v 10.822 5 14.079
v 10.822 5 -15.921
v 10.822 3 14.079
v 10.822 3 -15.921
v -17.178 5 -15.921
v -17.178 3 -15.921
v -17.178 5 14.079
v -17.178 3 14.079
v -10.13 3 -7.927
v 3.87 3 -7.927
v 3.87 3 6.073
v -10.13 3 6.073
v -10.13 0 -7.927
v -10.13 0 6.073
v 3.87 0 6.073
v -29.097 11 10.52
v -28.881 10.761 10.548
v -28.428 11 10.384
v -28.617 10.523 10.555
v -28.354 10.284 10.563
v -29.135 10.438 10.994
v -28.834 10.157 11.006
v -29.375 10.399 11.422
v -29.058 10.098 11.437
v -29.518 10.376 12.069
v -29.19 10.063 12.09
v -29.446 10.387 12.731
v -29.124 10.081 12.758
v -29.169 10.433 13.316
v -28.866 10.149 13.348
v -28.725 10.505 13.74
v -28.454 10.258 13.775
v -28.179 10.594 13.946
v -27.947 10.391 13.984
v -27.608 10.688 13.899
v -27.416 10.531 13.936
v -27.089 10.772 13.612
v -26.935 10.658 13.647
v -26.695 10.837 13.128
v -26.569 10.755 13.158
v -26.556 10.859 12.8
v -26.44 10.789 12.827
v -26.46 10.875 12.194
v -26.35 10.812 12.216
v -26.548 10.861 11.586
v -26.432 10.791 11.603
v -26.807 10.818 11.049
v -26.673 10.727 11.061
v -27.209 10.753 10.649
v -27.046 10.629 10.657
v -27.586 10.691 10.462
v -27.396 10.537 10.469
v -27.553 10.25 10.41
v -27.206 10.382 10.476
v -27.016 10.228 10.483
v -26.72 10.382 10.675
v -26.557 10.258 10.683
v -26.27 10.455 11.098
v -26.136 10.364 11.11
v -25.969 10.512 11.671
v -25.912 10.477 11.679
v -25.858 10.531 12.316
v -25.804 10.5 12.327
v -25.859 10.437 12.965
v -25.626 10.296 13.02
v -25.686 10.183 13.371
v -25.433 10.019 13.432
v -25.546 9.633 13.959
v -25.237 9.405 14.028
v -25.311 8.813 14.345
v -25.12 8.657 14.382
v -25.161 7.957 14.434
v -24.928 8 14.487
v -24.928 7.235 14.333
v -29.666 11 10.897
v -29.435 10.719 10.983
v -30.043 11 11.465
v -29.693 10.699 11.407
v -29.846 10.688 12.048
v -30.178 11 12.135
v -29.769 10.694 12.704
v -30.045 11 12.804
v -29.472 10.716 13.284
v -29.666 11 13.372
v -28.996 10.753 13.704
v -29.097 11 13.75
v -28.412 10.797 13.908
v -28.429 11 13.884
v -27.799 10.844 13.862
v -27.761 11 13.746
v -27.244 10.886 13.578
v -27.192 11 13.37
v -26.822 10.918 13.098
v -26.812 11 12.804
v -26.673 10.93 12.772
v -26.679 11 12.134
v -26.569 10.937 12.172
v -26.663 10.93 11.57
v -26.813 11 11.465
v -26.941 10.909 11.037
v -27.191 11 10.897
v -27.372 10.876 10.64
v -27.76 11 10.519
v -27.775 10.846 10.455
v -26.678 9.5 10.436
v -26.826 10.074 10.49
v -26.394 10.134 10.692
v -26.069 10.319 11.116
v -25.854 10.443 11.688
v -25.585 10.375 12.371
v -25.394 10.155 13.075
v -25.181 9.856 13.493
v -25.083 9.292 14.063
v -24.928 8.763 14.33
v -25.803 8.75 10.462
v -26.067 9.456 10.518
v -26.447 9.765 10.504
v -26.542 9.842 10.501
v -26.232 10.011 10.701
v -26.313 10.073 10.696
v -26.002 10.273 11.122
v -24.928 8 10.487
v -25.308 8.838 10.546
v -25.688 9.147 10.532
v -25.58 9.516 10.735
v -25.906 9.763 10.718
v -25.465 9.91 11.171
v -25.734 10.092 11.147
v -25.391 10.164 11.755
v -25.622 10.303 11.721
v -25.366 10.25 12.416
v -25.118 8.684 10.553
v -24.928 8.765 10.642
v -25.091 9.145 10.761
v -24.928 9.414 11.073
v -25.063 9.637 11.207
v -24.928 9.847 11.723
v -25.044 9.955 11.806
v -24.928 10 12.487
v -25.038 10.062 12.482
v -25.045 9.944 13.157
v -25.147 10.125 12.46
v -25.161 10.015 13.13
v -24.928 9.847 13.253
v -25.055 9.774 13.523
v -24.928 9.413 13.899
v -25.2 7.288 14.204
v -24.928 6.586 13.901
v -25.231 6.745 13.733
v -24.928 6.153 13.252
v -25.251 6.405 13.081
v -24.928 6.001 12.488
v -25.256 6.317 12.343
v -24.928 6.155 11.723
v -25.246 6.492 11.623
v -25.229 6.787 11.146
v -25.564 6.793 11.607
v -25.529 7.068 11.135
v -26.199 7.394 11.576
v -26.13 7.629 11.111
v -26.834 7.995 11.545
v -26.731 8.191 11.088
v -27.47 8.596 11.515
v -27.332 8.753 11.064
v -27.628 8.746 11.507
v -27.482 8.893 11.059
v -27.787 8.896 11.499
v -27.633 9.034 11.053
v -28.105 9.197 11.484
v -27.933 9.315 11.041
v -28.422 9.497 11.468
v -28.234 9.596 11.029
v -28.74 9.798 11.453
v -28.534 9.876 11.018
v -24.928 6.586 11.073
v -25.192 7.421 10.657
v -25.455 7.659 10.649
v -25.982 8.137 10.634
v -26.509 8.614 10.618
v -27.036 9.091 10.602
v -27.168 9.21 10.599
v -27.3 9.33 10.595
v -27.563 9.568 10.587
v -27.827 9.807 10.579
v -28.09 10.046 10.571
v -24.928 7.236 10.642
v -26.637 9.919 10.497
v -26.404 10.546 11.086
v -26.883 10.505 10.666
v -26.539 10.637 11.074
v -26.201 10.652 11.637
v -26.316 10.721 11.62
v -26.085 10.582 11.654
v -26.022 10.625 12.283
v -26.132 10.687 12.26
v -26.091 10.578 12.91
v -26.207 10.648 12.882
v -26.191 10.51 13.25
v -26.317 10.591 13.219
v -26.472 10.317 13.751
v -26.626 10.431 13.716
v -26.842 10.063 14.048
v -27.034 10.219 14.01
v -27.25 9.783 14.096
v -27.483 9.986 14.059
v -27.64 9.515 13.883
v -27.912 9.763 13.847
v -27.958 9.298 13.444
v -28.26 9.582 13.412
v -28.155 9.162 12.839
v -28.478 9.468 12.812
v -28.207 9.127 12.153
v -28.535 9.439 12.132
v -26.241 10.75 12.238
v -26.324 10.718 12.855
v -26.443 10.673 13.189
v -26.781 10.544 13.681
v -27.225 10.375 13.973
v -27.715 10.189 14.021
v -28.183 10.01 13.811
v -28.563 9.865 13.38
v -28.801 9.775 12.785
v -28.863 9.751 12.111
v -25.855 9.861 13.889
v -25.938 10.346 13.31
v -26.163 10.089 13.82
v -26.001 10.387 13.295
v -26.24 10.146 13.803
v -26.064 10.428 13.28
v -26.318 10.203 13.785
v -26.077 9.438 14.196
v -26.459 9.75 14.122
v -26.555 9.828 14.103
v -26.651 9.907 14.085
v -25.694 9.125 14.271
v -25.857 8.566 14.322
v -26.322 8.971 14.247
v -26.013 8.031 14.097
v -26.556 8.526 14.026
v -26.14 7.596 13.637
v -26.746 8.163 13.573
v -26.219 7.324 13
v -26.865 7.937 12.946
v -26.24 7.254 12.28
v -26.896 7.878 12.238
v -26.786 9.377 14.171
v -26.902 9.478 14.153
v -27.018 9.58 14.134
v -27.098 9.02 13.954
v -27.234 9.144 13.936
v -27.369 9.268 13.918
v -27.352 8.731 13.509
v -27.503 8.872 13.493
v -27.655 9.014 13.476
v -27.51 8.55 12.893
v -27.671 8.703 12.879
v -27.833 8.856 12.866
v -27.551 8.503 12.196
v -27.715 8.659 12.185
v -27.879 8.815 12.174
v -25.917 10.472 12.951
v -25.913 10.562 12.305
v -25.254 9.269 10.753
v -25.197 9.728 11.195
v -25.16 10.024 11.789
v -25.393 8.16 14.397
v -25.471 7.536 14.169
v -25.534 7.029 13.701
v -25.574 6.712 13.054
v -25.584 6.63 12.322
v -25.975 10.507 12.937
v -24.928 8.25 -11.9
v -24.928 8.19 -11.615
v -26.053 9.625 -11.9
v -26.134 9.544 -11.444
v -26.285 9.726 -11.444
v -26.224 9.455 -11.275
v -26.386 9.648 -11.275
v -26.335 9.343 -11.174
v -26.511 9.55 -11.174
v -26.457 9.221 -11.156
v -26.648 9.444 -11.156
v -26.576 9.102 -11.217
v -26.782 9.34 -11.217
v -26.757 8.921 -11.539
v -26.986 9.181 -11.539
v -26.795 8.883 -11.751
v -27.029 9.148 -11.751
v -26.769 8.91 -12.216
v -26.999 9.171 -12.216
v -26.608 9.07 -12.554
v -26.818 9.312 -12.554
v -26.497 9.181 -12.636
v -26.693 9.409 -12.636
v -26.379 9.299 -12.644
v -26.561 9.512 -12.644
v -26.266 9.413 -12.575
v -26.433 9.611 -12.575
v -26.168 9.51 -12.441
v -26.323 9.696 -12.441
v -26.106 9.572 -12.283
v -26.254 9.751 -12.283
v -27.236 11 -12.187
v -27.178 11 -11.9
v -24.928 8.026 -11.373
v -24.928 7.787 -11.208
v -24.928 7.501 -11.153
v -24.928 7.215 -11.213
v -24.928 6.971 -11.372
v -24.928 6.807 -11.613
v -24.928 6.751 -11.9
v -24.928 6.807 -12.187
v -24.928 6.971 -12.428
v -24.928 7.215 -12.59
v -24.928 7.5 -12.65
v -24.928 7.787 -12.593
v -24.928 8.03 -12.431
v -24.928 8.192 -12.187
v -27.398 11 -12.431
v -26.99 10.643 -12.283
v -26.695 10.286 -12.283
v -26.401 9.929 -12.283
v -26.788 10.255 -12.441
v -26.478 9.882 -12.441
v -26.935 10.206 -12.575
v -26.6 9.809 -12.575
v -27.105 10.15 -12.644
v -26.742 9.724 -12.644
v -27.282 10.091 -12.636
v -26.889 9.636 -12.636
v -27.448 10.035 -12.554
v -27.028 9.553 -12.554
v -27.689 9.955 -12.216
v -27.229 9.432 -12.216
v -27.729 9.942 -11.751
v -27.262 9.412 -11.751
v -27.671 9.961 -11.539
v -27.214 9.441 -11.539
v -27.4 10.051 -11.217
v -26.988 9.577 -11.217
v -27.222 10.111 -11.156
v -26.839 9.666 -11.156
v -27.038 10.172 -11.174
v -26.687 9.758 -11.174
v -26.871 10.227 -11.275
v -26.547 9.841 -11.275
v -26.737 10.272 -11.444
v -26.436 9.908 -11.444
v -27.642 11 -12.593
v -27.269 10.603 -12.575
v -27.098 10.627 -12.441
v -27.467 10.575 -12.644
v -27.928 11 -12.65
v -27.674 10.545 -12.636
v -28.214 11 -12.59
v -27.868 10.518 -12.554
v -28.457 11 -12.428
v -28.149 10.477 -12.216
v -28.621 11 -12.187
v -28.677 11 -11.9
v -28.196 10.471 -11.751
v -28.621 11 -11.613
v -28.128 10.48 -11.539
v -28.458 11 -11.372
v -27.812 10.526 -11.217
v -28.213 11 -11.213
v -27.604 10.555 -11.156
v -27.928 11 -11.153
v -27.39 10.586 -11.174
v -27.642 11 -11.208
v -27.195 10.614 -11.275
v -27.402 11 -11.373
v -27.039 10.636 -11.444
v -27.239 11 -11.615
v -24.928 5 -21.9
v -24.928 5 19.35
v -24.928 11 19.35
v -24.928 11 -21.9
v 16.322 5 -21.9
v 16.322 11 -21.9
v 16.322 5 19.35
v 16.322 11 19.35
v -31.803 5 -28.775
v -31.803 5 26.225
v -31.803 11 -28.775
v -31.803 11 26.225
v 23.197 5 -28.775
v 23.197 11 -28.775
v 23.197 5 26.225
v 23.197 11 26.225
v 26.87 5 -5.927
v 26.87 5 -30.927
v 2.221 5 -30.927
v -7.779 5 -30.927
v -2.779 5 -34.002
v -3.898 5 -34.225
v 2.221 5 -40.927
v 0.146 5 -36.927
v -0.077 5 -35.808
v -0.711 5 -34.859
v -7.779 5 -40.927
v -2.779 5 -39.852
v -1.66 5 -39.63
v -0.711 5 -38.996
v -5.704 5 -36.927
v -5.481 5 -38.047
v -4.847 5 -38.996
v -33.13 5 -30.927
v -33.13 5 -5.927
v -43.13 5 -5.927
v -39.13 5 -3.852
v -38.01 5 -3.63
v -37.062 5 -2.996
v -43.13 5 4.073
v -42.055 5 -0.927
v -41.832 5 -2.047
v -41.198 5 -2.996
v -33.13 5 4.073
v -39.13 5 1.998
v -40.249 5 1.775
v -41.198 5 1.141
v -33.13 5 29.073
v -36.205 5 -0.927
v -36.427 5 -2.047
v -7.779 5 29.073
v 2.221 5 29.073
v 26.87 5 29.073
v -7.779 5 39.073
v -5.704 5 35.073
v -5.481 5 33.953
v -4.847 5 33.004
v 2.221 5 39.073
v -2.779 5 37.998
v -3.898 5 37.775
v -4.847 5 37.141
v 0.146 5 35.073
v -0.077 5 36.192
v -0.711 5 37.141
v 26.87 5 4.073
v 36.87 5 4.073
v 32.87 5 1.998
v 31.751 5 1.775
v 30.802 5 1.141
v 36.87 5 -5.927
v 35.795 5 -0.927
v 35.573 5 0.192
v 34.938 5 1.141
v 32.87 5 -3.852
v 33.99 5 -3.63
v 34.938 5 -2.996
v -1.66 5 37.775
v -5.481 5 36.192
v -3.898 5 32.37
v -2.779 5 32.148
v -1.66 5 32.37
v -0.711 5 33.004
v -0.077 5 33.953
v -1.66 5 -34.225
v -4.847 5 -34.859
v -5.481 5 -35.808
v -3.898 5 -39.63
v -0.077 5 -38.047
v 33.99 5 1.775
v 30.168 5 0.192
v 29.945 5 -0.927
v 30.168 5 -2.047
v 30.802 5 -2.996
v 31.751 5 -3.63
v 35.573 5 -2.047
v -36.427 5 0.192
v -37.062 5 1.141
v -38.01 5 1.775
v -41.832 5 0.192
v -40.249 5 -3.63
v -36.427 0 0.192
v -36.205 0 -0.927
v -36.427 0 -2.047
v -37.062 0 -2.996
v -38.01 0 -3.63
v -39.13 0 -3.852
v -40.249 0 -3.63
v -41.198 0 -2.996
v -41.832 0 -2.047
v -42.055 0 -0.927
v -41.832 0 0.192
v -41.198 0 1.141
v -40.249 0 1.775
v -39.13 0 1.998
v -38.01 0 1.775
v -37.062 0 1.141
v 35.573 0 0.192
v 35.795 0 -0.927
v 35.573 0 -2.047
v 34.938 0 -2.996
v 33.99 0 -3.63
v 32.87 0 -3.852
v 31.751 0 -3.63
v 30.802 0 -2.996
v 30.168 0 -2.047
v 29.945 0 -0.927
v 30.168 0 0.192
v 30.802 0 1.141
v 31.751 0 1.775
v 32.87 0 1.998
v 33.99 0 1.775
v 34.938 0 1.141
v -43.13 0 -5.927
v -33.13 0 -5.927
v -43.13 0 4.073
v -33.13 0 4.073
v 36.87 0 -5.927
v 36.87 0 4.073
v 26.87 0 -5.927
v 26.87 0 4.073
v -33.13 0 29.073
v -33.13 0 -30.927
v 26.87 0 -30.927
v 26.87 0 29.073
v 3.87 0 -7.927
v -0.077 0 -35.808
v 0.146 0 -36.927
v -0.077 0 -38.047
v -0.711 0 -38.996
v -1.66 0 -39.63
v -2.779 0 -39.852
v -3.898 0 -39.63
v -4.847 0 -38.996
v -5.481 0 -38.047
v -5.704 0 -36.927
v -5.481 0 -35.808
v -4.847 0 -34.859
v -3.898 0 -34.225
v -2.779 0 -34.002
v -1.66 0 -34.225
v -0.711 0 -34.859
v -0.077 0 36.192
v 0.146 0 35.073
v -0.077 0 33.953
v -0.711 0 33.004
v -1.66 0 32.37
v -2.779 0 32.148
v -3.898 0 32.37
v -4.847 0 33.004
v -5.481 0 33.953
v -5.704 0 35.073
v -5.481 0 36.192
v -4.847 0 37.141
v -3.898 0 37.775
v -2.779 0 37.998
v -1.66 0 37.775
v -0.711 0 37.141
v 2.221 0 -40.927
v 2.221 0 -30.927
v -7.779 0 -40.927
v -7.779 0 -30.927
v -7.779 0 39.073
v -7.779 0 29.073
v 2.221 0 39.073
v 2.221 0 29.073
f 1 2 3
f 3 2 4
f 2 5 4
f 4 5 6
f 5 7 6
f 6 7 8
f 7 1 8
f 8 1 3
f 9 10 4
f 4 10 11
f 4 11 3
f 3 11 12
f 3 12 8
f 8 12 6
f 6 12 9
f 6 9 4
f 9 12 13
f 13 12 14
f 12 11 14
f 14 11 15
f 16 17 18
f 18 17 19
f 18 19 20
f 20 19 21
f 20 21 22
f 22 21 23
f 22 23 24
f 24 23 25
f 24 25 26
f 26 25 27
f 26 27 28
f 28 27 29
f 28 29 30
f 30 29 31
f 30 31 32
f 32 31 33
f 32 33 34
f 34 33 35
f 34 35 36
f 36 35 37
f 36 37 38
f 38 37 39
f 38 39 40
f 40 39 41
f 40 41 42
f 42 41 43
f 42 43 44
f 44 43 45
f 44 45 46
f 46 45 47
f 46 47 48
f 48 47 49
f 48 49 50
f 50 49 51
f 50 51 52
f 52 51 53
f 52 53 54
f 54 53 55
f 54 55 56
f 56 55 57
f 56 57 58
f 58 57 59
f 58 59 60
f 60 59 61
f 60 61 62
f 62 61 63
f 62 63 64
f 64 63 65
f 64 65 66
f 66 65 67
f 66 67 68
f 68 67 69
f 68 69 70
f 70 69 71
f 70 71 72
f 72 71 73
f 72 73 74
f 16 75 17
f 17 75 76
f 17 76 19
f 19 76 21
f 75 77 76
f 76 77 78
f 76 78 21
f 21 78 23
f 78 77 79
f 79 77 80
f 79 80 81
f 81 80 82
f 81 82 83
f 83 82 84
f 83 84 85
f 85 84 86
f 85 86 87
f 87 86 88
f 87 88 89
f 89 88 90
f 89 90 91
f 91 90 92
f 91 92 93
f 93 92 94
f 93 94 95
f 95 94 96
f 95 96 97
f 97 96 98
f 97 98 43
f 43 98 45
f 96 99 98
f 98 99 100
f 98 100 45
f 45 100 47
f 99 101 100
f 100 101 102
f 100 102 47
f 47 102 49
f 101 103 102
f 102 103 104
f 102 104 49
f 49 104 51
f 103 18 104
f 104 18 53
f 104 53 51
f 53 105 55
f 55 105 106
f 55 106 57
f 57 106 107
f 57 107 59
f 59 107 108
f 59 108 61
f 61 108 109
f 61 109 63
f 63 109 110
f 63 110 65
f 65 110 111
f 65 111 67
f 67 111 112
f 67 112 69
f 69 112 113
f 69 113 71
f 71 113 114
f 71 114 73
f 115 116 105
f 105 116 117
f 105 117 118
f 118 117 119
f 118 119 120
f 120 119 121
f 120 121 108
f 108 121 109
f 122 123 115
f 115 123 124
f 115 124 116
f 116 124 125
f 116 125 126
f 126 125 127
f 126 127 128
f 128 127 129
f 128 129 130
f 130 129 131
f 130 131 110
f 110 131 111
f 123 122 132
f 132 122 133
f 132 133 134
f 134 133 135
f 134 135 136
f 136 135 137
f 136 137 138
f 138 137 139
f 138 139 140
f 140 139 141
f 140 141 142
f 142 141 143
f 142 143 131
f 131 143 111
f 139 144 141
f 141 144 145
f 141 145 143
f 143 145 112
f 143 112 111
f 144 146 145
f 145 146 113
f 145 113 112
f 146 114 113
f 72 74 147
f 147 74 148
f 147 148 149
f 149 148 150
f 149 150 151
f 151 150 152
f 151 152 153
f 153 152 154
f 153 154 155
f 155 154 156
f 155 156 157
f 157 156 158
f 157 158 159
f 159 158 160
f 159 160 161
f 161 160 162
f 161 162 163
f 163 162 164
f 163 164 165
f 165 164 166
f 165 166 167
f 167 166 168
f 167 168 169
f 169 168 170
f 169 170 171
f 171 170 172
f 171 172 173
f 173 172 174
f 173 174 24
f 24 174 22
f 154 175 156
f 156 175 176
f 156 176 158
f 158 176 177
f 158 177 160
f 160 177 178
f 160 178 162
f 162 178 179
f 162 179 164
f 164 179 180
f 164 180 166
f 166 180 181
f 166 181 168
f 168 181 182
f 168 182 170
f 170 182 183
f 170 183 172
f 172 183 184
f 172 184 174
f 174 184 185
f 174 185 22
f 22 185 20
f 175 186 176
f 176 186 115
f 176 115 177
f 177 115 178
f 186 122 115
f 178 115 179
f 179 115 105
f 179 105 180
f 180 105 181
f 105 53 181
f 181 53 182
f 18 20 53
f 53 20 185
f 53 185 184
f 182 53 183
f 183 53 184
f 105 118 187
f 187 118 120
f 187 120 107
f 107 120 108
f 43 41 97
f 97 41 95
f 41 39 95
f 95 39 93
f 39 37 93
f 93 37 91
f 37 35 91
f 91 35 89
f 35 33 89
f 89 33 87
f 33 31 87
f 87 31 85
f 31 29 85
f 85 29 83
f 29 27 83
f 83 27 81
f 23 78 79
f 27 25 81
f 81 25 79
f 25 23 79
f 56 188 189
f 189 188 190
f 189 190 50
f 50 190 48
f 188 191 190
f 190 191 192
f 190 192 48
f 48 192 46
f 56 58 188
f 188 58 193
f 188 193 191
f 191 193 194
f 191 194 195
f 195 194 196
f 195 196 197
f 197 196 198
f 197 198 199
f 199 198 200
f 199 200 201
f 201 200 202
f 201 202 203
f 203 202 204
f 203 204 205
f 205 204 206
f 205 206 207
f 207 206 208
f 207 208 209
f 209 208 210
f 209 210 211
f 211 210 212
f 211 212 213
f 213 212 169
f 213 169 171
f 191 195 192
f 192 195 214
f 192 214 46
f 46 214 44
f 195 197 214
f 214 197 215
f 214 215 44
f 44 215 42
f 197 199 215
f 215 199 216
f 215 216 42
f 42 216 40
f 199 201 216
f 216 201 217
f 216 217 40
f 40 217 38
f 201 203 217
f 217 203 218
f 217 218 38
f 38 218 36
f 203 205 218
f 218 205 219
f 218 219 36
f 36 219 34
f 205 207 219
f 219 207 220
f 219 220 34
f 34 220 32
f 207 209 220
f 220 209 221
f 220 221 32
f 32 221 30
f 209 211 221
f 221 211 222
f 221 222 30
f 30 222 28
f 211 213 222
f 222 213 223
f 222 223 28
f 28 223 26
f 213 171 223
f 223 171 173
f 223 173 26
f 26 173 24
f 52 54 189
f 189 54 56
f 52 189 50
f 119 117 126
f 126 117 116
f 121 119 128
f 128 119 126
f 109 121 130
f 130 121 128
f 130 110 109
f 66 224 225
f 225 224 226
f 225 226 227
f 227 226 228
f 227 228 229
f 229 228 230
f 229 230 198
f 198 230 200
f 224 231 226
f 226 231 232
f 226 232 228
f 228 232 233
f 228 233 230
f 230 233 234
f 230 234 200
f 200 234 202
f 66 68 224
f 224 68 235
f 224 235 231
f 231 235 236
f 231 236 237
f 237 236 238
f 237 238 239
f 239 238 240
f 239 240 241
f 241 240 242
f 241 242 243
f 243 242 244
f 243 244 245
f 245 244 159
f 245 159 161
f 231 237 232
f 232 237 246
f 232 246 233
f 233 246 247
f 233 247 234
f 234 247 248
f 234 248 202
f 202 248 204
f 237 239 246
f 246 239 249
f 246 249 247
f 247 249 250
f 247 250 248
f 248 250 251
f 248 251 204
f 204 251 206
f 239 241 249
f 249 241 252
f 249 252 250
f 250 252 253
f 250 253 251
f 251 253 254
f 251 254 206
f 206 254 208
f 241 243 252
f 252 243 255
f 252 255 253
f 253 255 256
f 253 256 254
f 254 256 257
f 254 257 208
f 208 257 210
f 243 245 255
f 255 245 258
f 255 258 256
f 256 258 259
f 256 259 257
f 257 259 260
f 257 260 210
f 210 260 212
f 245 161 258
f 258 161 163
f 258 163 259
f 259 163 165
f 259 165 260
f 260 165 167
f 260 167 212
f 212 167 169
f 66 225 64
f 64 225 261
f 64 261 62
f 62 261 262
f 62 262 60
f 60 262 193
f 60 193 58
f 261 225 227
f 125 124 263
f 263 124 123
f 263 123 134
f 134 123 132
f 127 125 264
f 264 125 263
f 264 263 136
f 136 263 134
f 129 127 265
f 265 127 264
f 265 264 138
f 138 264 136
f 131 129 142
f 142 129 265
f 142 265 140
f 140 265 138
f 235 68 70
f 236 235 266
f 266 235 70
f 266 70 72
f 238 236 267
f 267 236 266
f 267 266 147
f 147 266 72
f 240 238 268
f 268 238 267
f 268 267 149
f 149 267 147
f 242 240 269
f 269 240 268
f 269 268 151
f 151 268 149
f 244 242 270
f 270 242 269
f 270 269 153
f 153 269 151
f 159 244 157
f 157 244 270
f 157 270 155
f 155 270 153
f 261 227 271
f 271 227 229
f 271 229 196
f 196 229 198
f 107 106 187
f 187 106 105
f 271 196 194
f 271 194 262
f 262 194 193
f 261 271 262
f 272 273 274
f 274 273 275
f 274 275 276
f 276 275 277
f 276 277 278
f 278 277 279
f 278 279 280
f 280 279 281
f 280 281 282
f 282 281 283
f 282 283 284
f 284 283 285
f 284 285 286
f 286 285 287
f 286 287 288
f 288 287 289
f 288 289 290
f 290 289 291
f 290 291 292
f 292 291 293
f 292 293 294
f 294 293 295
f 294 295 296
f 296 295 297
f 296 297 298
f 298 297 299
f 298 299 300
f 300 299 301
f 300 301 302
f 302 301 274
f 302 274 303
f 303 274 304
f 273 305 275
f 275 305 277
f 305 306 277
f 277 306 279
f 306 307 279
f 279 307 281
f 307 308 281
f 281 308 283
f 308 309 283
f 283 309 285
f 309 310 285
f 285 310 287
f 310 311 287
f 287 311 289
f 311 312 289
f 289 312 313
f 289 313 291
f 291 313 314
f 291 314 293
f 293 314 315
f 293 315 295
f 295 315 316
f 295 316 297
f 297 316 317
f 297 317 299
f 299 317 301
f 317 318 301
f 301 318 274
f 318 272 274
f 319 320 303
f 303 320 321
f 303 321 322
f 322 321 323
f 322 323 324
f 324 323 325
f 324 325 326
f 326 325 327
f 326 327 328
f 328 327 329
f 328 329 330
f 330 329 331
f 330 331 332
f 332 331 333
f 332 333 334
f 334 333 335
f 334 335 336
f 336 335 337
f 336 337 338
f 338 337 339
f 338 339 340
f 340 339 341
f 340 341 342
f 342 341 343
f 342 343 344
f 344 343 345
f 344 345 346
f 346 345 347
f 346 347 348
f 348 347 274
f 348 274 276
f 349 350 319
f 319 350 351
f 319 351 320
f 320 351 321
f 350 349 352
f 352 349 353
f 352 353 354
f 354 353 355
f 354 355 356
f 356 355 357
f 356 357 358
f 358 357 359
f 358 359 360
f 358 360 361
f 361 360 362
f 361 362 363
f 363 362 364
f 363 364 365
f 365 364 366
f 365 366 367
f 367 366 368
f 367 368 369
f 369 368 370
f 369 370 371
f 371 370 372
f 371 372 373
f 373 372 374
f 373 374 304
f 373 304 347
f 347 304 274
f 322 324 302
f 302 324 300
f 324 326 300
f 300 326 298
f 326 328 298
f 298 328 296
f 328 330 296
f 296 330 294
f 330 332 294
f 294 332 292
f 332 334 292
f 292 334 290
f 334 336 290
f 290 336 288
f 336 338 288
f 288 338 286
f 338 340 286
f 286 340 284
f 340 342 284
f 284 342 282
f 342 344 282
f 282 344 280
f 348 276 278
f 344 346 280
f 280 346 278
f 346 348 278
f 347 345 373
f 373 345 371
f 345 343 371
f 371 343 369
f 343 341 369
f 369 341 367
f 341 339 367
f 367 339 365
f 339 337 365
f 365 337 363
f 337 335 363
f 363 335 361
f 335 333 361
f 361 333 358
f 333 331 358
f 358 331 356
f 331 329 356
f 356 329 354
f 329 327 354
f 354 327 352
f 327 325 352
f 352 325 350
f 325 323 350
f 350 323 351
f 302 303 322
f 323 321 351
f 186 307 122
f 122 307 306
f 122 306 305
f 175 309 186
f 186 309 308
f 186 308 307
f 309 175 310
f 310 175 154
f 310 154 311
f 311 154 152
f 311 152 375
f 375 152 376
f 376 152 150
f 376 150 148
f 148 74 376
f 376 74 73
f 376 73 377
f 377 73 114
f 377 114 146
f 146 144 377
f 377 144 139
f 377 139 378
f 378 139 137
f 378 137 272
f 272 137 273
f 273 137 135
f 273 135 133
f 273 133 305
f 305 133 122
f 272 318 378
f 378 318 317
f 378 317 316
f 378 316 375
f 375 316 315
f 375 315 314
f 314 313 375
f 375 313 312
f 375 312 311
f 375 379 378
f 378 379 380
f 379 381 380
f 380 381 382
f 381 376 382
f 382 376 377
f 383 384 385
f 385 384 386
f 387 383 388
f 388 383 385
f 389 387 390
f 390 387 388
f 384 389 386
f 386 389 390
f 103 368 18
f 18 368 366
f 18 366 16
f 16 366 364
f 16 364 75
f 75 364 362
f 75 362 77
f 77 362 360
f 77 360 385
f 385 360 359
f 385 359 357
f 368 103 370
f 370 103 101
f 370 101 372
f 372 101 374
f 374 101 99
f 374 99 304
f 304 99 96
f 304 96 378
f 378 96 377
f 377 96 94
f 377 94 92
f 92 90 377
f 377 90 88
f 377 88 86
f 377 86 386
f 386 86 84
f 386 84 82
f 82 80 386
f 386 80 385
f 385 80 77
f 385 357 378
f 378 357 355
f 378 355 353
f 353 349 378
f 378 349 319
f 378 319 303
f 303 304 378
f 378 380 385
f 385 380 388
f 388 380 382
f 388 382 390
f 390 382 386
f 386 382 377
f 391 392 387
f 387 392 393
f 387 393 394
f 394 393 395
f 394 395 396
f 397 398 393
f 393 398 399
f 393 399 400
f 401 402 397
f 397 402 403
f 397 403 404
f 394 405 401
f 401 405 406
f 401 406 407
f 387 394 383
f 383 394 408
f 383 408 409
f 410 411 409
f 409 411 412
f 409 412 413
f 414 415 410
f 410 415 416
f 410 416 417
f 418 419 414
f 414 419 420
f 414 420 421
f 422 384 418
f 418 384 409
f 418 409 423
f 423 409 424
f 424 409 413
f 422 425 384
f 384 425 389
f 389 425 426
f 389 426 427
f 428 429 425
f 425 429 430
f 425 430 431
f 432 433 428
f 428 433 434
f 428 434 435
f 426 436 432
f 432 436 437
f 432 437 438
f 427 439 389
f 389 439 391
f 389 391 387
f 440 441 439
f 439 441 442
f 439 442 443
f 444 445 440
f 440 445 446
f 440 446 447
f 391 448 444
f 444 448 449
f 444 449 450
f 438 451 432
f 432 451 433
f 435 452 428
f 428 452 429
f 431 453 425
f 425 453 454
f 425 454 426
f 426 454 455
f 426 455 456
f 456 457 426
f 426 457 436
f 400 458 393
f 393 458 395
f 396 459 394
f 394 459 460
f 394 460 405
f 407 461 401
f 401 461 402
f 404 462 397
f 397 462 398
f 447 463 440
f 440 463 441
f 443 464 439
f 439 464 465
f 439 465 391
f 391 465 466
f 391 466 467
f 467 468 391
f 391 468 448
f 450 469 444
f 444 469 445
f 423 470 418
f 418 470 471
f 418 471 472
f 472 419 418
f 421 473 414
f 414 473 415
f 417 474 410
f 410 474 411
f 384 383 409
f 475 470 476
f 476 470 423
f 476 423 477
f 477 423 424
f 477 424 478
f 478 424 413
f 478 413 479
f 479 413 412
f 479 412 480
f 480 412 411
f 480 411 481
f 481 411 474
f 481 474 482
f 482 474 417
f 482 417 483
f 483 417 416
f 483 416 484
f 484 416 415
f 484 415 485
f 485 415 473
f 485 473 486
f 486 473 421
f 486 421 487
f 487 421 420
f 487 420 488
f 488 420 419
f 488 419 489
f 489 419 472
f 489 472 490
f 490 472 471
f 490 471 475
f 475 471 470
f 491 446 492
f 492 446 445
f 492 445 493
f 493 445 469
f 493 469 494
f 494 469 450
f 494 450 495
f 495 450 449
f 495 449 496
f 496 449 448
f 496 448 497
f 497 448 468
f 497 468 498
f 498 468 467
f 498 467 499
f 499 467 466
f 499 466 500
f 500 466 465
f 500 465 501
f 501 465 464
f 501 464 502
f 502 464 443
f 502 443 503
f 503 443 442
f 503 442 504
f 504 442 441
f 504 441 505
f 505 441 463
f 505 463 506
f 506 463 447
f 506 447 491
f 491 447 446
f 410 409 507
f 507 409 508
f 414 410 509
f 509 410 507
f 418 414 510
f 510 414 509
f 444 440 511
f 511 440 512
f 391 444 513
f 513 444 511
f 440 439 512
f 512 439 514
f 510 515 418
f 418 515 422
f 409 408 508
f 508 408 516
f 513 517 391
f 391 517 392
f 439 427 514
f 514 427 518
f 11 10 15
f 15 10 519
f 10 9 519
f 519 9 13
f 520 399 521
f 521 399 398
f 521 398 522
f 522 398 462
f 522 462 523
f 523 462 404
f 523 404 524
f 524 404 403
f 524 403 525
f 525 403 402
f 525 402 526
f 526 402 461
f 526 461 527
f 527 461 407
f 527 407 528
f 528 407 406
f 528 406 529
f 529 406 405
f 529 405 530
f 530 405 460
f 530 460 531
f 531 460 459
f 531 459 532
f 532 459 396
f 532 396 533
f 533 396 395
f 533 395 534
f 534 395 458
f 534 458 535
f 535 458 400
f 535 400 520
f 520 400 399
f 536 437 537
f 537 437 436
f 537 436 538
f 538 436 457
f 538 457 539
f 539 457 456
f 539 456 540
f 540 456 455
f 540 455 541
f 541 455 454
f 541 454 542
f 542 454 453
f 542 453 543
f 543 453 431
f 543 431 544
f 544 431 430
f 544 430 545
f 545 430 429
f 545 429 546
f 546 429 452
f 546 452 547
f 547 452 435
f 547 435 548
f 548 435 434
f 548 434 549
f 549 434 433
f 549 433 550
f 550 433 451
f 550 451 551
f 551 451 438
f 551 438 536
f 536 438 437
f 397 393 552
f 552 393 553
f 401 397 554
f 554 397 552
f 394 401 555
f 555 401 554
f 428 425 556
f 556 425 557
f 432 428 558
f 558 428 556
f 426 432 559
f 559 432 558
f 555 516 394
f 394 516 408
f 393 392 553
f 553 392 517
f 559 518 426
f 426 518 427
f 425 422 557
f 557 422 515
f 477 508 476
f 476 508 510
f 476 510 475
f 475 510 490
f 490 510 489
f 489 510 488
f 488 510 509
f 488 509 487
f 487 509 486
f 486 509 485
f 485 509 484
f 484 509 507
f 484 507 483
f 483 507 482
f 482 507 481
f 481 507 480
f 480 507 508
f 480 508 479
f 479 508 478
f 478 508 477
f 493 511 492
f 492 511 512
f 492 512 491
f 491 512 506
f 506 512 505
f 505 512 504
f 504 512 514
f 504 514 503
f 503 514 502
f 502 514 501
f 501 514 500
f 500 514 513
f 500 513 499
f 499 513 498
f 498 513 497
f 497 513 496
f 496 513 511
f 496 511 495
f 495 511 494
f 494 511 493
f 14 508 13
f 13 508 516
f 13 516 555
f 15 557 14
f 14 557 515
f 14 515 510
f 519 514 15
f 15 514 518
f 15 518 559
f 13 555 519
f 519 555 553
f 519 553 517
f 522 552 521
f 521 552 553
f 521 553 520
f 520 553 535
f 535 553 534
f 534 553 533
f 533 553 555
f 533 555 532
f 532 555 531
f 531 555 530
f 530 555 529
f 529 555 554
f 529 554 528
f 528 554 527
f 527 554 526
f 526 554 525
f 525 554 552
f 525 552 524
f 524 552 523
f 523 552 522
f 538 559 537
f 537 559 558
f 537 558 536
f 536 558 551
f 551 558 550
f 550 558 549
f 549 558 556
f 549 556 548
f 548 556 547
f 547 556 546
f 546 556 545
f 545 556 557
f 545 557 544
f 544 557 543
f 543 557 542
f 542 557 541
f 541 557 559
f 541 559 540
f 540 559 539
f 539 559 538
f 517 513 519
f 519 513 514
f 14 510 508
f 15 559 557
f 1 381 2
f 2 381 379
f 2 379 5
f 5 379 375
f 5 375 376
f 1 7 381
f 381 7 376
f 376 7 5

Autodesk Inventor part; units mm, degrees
ref_plane "YZ Plane" through (0, 0, 0) normal (1, 0, 0) x (0, 1, 0)
ref_plane "XZ Plane" through (0, 0, 0) normal (0, 1, 0) x (-1, 0, 0)
ref_plane "XY Plane" through (0, 0, 0) normal (0, 0, 1) x (1, 0, 0)
sketch "Sketch1" plane through (0, 0, 0) normal (0, 1, 0) x (-1, 0, 0)
  circle A0 centre (28.1298, -0.9274) radius 1
  circle A1 centre (3.1298, -25.9274) radius 1
  circle A2 centre (-21.8702, -0.9274) radius 1
  circle A3 centre (3.1298, 24.0726) radius 1
  line L0 (33.1298, -30.9274) -> (-26.8702, -30.9274)
  line L1 (-26.8702, -30.9274) -> (-26.8702, 29.0726)
  line L2 (-26.8702, 29.0726) -> (33.1298, 29.0726)
  line L3 (33.1298, 29.0726) -> (33.1298, -30.9274)
  line L4 (33.1298, -30.9274) -> (-26.8702, 29.0726) construction
  line L5 (-26.8702, -30.9274) -> (33.1298, 29.0726) construction
  point P0 (0, 0)
  dimension "d1" = 2
  dimension "d2" = 2
  dimension "d3" = 2
  dimension "d4" = 2
  dimension "d7" = 60
  dimension "d9" = 50
  dimension "d10" = 50
  dimension "d12" = 5
  dimension "d13" = 60
  dimension "d14" = 5
  dimension "d15" = 30
  dimension "d16" = 30
  dimension "d17" = 30
extrude "Extrusion1" add sketch "Sketch1" along normal blind 5 contours A0 | A1 | A2 | A3 | L0 L1 L2 L3
sketch "Sketch2" plane through (0, 5, 0) normal (0, 1, 0) x (1, 0, 0)
  line L0 (26.8702, 30.9274) -> (-33.1298, 30.9274) projected
  line L1 (-7.7791, 30.9274) -> (2.2209, 30.9274)
  line L2 (2.2209, 30.9274) -> (2.2209, 40.9274)
  line L3 (2.2209, 40.9274) -> (-7.7791, 40.9274)
  line L4 (-7.7791, 40.9274) -> (-7.7791, 30.9274)
  line L5 (-33.1298, -29.0726) -> (26.8702, -29.0726) projected
  line L6 (-7.7791, -29.0726) -> (2.2209, -29.0726)
  line L7 (2.2209, -29.0726) -> (2.2209, -39.0726)
  line L8 (2.2209, -39.0726) -> (-7.7791, -39.0726)
  line L9 (-7.7791, -39.0726) -> (-7.7791, -29.0726)
  point P0 (0, 0)
  dimension "d18" = 10
  dimension "d19" = 10
  dimension "d20" = 10
extrude "Extrusion2" add sketch "Sketch2" against normal blind 5
sketch "Sketch3" plane through (0, 0, 0) normal (0, -1, 0) x (1, 0, 0)
  circle A0 centre (-2.7791, -36.9274) radius 2.925
  circle A1 centre (-2.7791, 35.0726) radius 2.925
  line L0 (-7.7791, 39.0726) -> (-7.7791, 29.0726) projected
  line L1 (2.2209, 39.0726) -> (-7.7791, 39.0726) projected
  line L2 (-7.7791, -40.9274) -> (2.2209, -40.9274) projected
  line L3 (-7.7791, -30.9274) -> (-7.7791, -40.9274) projected
  point P0 (0, 0)
  dimension "d23" = 5.85
  dimension "d24" = 5.85
  dimension "d25" = 5
  dimension "d26" = 4
  dimension "d27" = 4
  dimension "d28" = 5
extrude "Extrusion3" cut sketch "Sketch3" along normal through all both and the other way through all
sketch "Sketch4" plane through (0, 0, 0) normal (0, -1, 0) x (1, 0, 0)
  line L0 (-10.1298, 6.0726) -> (3.8702, 6.0726)
  line L1 (3.8702, 6.0726) -> (3.8702, -7.9274)
  line L2 (3.8702, -7.9274) -> (-10.1298, -7.9274)
  line L3 (-10.1298, -7.9274) -> (-10.1298, 6.0726)
  line L4 (-33.1298, 29.0726) -> (-33.1298, -30.9274) projected
  line L5 (26.8702, -30.9274) -> (26.8702, 29.0726) projected
  line L6 (-33.1298, -30.9274) -> (-7.7791, -30.9274) projected
  line L7 (26.8702, 29.0726) -> (-33.1298, 29.0726) projected
  point P0 (0, 0)
  point P1 (-7.7791, 29.0726)
  dimension "d31" = 14
  dimension "d32" = 14
  dimension "d33" = 23
  dimension "d34" = 23
  dimension "d35" = 23
  dimension "d36" = 23
extrude "Extrusion4" cut sketch "Sketch4" against normal through all
sketch "Sketch5" plane through (0, 5, 0) normal (0, 1, 0) x (1, 0, 0)
  line L0 (-43.1298, -4.0726) -> (-33.1298, -4.0726)
  line L1 (-33.1298, -4.0726) -> (-33.1298, 5.9274)
  line L2 (-33.1298, 5.9274) -> (-43.1298, 5.9274)
  line L3 (-43.1298, 5.9274) -> (-43.1298, -4.0726)
  line L4 (-33.1298, -29.0726) -> (-7.7791, -29.0726) projected
  line L5 (-33.1298, 30.9274) -> (-33.1298, -29.0726) projected
  line L6 (26.8702, 30.9274) -> (26.8702, -29.0726) projected
  line L7 (26.8702, -4.0726) -> (36.8702, -4.0726)
  line L8 (36.8702, -4.0726) -> (36.8702, 5.9274)
  line L9 (36.8702, 5.9274) -> (26.8702, 5.9274)
  line L10 (26.8702, 5.9274) -> (26.8702, -4.0726)
  line L11 (26.8702, 30.9274) -> (2.2209, 30.9274) projected
  line L12 (2.2209, -29.0726) -> (26.8702, -29.0726) projected
  line L13 (26.8702, -29.0726) -> (26.8702, 30.9274) projected
  point P0 (0, 0)
  dimension "d39" = 10
  dimension "d40" = 10
  dimension "d41" = 25
  dimension "d42" = 0
  dimension "d43" = 10
  dimension "d44" = 10
  dimension "d45" = 25
  dimension "d46" = 25
  dimension "d47" = 10
extrude "Extrusion5" add sketch "Sketch5" against normal blind 5
sketch "Sketch6" plane through (0, 5, 0) normal (0, 1, 0) x (1, 0, 0)
  circle A0 centre (-39.1298, 0.9274) radius 2.925
  circle A1 centre (32.8702, 0.9274) radius 2.925
  line L0 (36.8702, 5.9274) -> (26.8702, 5.9274) projected
  line L1 (26.8702, -29.0726) -> (26.8702, -4.0726) projected
  line L2 (36.8702, -4.0726) -> (36.8702, 5.9274) projected
  line L3 (-43.1298, 5.9274) -> (-43.1298, -4.0726) projected
  line L4 (-33.1298, 5.9274) -> (-43.1298, 5.9274) projected
  point P0 (0, 0)
  dimension "d50" = 5.85
  dimension "d51" = 5.85
  dimension "d52" = 5
  dimension "d54" = 4
  dimension "d55" = 4
  dimension "d56" = 5
extrude "Extrusion6" cut sketch "Sketch6" against normal through all
sketch "Sketch7" plane through (0, 5, 0) normal (0, 1, 0) x (1, 0, 0)
  line L0 (-24.9285, -19.3498) -> (16.3215, -19.3498)
  line L1 (16.3215, -19.3498) -> (16.3215, 21.9002)
  line L2 (16.3215, 21.9002) -> (-24.9285, 21.9002)
  line L3 (-24.9285, 21.9002) -> (-24.9285, -19.3498)
  line L4 (-33.1298, -29.0726) -> (-7.7791, -29.0726) projected
  line L5 (26.8702, -29.0726) -> (26.8702, -4.0726) projected
  line L6 (-31.8035, -26.2248) -> (23.1965, -26.2248)
  line L7 (23.1965, -26.2248) -> (23.1965, 28.7752)
  line L8 (23.1965, 28.7752) -> (-31.8035, 28.7752)
  line L9 (-31.8035, 28.7752) -> (-31.8035, -26.2248)
  line L10 (26.8702, 30.9274) -> (2.2209, 30.9274) projected
  line L11 (2.2209, -29.0726) -> (26.8702, -29.0726) projected
  line L12 (-33.1298, -4.0726) -> (-33.1298, -29.0726) projected
  point P0 (0, 0)
  dimension "d78" = 55
extrude "Extrusion7" add sketch "Sketch7" along normal blind 6
sketch "Sketch8" plane through (0, 11, 0) normal (0, 1, 0) x (1, 0, 0)
  circle A0 centre (-27.9285, 11.9002) radius 0.75
  line L0 (-24.9285, -19.3498) -> (-24.9285, 21.9002) projected
  line L1 (-24.9285, 21.9002) -> (16.3215, 21.9002) projected
  point P0 (0, 0)
  dimension "d70" = 1.5
  dimension "d71" = 3
  dimension "d80" = 10
sketch "Sketch9" plane through (-24.9285, 5, 19.3498) normal (1, 0, 0) x (0, 0, -1)
  circle A0 centre (31.25, 2.5) radius 0.75
  line L0 (0, 6) -> (41.25, 6) projected
  point P0 (19.3498, -5)
  dimension "d72" = 1.5
  dimension "d73" = 3.5
  dimension "d81" = 10
loft "Loft1" cut profiles "Sketch9", "Sketch8"
sketch "Sketch10" plane through (0, 11, 0) normal (0, 1, 0) x (1, 0, 0)
  circle A0 centre (-28.4285, -12.1344) radius 1.75
  line L0 (-24.9285, -19.3498) -> (-24.9285, 21.9002) projected
  point P0 (0, 0)
  dimension "d83" = 3.5
  dimension "d84" = 3.5
sketch "Sketch11" plane through (-24.9285, 5, 19.3498) normal (1, 0, 0) x (0, 0, -1)
  circle A0 centre (6.8624, 3) radius 2
  line L0 (41.25, 0) -> (0, 0) projected
  point P0 (19.3498, -5)
  dimension "d85" = 4
  dimension "d86" = 3
loft "Loft2" cut profiles "Sketch10", "Sketch11"
sketch "Sketch13" plane through (0, 5, 0) normal (0, 1, 0) x (1, 0, 0)
  line L0 (10.8215, -14.0787) -> (-17.1785, -14.0787)
  line L1 (-17.1785, -14.0787) -> (-17.1785, 15.9213)
  line L2 (-17.1785, 15.9213) -> (10.8215, 15.9213)
  line L3 (10.8215, 15.9213) -> (10.8215, -14.0787)
  line L4 (16.3215, 21.9002) -> (16.3215, -19.3498) projected
  point P0 (0, 0)
  point P1 (-12.1298, -8.0726)
  point P2 (5.8702, 9.9274)
  dimension "d104" = 30
  dimension "d105" = 28
  dimension "d106" = 5.5
extrude "Extrusion9" cut sketch "Sketch13" against normal blind 2
properties part number "LidClampCell_V6"
